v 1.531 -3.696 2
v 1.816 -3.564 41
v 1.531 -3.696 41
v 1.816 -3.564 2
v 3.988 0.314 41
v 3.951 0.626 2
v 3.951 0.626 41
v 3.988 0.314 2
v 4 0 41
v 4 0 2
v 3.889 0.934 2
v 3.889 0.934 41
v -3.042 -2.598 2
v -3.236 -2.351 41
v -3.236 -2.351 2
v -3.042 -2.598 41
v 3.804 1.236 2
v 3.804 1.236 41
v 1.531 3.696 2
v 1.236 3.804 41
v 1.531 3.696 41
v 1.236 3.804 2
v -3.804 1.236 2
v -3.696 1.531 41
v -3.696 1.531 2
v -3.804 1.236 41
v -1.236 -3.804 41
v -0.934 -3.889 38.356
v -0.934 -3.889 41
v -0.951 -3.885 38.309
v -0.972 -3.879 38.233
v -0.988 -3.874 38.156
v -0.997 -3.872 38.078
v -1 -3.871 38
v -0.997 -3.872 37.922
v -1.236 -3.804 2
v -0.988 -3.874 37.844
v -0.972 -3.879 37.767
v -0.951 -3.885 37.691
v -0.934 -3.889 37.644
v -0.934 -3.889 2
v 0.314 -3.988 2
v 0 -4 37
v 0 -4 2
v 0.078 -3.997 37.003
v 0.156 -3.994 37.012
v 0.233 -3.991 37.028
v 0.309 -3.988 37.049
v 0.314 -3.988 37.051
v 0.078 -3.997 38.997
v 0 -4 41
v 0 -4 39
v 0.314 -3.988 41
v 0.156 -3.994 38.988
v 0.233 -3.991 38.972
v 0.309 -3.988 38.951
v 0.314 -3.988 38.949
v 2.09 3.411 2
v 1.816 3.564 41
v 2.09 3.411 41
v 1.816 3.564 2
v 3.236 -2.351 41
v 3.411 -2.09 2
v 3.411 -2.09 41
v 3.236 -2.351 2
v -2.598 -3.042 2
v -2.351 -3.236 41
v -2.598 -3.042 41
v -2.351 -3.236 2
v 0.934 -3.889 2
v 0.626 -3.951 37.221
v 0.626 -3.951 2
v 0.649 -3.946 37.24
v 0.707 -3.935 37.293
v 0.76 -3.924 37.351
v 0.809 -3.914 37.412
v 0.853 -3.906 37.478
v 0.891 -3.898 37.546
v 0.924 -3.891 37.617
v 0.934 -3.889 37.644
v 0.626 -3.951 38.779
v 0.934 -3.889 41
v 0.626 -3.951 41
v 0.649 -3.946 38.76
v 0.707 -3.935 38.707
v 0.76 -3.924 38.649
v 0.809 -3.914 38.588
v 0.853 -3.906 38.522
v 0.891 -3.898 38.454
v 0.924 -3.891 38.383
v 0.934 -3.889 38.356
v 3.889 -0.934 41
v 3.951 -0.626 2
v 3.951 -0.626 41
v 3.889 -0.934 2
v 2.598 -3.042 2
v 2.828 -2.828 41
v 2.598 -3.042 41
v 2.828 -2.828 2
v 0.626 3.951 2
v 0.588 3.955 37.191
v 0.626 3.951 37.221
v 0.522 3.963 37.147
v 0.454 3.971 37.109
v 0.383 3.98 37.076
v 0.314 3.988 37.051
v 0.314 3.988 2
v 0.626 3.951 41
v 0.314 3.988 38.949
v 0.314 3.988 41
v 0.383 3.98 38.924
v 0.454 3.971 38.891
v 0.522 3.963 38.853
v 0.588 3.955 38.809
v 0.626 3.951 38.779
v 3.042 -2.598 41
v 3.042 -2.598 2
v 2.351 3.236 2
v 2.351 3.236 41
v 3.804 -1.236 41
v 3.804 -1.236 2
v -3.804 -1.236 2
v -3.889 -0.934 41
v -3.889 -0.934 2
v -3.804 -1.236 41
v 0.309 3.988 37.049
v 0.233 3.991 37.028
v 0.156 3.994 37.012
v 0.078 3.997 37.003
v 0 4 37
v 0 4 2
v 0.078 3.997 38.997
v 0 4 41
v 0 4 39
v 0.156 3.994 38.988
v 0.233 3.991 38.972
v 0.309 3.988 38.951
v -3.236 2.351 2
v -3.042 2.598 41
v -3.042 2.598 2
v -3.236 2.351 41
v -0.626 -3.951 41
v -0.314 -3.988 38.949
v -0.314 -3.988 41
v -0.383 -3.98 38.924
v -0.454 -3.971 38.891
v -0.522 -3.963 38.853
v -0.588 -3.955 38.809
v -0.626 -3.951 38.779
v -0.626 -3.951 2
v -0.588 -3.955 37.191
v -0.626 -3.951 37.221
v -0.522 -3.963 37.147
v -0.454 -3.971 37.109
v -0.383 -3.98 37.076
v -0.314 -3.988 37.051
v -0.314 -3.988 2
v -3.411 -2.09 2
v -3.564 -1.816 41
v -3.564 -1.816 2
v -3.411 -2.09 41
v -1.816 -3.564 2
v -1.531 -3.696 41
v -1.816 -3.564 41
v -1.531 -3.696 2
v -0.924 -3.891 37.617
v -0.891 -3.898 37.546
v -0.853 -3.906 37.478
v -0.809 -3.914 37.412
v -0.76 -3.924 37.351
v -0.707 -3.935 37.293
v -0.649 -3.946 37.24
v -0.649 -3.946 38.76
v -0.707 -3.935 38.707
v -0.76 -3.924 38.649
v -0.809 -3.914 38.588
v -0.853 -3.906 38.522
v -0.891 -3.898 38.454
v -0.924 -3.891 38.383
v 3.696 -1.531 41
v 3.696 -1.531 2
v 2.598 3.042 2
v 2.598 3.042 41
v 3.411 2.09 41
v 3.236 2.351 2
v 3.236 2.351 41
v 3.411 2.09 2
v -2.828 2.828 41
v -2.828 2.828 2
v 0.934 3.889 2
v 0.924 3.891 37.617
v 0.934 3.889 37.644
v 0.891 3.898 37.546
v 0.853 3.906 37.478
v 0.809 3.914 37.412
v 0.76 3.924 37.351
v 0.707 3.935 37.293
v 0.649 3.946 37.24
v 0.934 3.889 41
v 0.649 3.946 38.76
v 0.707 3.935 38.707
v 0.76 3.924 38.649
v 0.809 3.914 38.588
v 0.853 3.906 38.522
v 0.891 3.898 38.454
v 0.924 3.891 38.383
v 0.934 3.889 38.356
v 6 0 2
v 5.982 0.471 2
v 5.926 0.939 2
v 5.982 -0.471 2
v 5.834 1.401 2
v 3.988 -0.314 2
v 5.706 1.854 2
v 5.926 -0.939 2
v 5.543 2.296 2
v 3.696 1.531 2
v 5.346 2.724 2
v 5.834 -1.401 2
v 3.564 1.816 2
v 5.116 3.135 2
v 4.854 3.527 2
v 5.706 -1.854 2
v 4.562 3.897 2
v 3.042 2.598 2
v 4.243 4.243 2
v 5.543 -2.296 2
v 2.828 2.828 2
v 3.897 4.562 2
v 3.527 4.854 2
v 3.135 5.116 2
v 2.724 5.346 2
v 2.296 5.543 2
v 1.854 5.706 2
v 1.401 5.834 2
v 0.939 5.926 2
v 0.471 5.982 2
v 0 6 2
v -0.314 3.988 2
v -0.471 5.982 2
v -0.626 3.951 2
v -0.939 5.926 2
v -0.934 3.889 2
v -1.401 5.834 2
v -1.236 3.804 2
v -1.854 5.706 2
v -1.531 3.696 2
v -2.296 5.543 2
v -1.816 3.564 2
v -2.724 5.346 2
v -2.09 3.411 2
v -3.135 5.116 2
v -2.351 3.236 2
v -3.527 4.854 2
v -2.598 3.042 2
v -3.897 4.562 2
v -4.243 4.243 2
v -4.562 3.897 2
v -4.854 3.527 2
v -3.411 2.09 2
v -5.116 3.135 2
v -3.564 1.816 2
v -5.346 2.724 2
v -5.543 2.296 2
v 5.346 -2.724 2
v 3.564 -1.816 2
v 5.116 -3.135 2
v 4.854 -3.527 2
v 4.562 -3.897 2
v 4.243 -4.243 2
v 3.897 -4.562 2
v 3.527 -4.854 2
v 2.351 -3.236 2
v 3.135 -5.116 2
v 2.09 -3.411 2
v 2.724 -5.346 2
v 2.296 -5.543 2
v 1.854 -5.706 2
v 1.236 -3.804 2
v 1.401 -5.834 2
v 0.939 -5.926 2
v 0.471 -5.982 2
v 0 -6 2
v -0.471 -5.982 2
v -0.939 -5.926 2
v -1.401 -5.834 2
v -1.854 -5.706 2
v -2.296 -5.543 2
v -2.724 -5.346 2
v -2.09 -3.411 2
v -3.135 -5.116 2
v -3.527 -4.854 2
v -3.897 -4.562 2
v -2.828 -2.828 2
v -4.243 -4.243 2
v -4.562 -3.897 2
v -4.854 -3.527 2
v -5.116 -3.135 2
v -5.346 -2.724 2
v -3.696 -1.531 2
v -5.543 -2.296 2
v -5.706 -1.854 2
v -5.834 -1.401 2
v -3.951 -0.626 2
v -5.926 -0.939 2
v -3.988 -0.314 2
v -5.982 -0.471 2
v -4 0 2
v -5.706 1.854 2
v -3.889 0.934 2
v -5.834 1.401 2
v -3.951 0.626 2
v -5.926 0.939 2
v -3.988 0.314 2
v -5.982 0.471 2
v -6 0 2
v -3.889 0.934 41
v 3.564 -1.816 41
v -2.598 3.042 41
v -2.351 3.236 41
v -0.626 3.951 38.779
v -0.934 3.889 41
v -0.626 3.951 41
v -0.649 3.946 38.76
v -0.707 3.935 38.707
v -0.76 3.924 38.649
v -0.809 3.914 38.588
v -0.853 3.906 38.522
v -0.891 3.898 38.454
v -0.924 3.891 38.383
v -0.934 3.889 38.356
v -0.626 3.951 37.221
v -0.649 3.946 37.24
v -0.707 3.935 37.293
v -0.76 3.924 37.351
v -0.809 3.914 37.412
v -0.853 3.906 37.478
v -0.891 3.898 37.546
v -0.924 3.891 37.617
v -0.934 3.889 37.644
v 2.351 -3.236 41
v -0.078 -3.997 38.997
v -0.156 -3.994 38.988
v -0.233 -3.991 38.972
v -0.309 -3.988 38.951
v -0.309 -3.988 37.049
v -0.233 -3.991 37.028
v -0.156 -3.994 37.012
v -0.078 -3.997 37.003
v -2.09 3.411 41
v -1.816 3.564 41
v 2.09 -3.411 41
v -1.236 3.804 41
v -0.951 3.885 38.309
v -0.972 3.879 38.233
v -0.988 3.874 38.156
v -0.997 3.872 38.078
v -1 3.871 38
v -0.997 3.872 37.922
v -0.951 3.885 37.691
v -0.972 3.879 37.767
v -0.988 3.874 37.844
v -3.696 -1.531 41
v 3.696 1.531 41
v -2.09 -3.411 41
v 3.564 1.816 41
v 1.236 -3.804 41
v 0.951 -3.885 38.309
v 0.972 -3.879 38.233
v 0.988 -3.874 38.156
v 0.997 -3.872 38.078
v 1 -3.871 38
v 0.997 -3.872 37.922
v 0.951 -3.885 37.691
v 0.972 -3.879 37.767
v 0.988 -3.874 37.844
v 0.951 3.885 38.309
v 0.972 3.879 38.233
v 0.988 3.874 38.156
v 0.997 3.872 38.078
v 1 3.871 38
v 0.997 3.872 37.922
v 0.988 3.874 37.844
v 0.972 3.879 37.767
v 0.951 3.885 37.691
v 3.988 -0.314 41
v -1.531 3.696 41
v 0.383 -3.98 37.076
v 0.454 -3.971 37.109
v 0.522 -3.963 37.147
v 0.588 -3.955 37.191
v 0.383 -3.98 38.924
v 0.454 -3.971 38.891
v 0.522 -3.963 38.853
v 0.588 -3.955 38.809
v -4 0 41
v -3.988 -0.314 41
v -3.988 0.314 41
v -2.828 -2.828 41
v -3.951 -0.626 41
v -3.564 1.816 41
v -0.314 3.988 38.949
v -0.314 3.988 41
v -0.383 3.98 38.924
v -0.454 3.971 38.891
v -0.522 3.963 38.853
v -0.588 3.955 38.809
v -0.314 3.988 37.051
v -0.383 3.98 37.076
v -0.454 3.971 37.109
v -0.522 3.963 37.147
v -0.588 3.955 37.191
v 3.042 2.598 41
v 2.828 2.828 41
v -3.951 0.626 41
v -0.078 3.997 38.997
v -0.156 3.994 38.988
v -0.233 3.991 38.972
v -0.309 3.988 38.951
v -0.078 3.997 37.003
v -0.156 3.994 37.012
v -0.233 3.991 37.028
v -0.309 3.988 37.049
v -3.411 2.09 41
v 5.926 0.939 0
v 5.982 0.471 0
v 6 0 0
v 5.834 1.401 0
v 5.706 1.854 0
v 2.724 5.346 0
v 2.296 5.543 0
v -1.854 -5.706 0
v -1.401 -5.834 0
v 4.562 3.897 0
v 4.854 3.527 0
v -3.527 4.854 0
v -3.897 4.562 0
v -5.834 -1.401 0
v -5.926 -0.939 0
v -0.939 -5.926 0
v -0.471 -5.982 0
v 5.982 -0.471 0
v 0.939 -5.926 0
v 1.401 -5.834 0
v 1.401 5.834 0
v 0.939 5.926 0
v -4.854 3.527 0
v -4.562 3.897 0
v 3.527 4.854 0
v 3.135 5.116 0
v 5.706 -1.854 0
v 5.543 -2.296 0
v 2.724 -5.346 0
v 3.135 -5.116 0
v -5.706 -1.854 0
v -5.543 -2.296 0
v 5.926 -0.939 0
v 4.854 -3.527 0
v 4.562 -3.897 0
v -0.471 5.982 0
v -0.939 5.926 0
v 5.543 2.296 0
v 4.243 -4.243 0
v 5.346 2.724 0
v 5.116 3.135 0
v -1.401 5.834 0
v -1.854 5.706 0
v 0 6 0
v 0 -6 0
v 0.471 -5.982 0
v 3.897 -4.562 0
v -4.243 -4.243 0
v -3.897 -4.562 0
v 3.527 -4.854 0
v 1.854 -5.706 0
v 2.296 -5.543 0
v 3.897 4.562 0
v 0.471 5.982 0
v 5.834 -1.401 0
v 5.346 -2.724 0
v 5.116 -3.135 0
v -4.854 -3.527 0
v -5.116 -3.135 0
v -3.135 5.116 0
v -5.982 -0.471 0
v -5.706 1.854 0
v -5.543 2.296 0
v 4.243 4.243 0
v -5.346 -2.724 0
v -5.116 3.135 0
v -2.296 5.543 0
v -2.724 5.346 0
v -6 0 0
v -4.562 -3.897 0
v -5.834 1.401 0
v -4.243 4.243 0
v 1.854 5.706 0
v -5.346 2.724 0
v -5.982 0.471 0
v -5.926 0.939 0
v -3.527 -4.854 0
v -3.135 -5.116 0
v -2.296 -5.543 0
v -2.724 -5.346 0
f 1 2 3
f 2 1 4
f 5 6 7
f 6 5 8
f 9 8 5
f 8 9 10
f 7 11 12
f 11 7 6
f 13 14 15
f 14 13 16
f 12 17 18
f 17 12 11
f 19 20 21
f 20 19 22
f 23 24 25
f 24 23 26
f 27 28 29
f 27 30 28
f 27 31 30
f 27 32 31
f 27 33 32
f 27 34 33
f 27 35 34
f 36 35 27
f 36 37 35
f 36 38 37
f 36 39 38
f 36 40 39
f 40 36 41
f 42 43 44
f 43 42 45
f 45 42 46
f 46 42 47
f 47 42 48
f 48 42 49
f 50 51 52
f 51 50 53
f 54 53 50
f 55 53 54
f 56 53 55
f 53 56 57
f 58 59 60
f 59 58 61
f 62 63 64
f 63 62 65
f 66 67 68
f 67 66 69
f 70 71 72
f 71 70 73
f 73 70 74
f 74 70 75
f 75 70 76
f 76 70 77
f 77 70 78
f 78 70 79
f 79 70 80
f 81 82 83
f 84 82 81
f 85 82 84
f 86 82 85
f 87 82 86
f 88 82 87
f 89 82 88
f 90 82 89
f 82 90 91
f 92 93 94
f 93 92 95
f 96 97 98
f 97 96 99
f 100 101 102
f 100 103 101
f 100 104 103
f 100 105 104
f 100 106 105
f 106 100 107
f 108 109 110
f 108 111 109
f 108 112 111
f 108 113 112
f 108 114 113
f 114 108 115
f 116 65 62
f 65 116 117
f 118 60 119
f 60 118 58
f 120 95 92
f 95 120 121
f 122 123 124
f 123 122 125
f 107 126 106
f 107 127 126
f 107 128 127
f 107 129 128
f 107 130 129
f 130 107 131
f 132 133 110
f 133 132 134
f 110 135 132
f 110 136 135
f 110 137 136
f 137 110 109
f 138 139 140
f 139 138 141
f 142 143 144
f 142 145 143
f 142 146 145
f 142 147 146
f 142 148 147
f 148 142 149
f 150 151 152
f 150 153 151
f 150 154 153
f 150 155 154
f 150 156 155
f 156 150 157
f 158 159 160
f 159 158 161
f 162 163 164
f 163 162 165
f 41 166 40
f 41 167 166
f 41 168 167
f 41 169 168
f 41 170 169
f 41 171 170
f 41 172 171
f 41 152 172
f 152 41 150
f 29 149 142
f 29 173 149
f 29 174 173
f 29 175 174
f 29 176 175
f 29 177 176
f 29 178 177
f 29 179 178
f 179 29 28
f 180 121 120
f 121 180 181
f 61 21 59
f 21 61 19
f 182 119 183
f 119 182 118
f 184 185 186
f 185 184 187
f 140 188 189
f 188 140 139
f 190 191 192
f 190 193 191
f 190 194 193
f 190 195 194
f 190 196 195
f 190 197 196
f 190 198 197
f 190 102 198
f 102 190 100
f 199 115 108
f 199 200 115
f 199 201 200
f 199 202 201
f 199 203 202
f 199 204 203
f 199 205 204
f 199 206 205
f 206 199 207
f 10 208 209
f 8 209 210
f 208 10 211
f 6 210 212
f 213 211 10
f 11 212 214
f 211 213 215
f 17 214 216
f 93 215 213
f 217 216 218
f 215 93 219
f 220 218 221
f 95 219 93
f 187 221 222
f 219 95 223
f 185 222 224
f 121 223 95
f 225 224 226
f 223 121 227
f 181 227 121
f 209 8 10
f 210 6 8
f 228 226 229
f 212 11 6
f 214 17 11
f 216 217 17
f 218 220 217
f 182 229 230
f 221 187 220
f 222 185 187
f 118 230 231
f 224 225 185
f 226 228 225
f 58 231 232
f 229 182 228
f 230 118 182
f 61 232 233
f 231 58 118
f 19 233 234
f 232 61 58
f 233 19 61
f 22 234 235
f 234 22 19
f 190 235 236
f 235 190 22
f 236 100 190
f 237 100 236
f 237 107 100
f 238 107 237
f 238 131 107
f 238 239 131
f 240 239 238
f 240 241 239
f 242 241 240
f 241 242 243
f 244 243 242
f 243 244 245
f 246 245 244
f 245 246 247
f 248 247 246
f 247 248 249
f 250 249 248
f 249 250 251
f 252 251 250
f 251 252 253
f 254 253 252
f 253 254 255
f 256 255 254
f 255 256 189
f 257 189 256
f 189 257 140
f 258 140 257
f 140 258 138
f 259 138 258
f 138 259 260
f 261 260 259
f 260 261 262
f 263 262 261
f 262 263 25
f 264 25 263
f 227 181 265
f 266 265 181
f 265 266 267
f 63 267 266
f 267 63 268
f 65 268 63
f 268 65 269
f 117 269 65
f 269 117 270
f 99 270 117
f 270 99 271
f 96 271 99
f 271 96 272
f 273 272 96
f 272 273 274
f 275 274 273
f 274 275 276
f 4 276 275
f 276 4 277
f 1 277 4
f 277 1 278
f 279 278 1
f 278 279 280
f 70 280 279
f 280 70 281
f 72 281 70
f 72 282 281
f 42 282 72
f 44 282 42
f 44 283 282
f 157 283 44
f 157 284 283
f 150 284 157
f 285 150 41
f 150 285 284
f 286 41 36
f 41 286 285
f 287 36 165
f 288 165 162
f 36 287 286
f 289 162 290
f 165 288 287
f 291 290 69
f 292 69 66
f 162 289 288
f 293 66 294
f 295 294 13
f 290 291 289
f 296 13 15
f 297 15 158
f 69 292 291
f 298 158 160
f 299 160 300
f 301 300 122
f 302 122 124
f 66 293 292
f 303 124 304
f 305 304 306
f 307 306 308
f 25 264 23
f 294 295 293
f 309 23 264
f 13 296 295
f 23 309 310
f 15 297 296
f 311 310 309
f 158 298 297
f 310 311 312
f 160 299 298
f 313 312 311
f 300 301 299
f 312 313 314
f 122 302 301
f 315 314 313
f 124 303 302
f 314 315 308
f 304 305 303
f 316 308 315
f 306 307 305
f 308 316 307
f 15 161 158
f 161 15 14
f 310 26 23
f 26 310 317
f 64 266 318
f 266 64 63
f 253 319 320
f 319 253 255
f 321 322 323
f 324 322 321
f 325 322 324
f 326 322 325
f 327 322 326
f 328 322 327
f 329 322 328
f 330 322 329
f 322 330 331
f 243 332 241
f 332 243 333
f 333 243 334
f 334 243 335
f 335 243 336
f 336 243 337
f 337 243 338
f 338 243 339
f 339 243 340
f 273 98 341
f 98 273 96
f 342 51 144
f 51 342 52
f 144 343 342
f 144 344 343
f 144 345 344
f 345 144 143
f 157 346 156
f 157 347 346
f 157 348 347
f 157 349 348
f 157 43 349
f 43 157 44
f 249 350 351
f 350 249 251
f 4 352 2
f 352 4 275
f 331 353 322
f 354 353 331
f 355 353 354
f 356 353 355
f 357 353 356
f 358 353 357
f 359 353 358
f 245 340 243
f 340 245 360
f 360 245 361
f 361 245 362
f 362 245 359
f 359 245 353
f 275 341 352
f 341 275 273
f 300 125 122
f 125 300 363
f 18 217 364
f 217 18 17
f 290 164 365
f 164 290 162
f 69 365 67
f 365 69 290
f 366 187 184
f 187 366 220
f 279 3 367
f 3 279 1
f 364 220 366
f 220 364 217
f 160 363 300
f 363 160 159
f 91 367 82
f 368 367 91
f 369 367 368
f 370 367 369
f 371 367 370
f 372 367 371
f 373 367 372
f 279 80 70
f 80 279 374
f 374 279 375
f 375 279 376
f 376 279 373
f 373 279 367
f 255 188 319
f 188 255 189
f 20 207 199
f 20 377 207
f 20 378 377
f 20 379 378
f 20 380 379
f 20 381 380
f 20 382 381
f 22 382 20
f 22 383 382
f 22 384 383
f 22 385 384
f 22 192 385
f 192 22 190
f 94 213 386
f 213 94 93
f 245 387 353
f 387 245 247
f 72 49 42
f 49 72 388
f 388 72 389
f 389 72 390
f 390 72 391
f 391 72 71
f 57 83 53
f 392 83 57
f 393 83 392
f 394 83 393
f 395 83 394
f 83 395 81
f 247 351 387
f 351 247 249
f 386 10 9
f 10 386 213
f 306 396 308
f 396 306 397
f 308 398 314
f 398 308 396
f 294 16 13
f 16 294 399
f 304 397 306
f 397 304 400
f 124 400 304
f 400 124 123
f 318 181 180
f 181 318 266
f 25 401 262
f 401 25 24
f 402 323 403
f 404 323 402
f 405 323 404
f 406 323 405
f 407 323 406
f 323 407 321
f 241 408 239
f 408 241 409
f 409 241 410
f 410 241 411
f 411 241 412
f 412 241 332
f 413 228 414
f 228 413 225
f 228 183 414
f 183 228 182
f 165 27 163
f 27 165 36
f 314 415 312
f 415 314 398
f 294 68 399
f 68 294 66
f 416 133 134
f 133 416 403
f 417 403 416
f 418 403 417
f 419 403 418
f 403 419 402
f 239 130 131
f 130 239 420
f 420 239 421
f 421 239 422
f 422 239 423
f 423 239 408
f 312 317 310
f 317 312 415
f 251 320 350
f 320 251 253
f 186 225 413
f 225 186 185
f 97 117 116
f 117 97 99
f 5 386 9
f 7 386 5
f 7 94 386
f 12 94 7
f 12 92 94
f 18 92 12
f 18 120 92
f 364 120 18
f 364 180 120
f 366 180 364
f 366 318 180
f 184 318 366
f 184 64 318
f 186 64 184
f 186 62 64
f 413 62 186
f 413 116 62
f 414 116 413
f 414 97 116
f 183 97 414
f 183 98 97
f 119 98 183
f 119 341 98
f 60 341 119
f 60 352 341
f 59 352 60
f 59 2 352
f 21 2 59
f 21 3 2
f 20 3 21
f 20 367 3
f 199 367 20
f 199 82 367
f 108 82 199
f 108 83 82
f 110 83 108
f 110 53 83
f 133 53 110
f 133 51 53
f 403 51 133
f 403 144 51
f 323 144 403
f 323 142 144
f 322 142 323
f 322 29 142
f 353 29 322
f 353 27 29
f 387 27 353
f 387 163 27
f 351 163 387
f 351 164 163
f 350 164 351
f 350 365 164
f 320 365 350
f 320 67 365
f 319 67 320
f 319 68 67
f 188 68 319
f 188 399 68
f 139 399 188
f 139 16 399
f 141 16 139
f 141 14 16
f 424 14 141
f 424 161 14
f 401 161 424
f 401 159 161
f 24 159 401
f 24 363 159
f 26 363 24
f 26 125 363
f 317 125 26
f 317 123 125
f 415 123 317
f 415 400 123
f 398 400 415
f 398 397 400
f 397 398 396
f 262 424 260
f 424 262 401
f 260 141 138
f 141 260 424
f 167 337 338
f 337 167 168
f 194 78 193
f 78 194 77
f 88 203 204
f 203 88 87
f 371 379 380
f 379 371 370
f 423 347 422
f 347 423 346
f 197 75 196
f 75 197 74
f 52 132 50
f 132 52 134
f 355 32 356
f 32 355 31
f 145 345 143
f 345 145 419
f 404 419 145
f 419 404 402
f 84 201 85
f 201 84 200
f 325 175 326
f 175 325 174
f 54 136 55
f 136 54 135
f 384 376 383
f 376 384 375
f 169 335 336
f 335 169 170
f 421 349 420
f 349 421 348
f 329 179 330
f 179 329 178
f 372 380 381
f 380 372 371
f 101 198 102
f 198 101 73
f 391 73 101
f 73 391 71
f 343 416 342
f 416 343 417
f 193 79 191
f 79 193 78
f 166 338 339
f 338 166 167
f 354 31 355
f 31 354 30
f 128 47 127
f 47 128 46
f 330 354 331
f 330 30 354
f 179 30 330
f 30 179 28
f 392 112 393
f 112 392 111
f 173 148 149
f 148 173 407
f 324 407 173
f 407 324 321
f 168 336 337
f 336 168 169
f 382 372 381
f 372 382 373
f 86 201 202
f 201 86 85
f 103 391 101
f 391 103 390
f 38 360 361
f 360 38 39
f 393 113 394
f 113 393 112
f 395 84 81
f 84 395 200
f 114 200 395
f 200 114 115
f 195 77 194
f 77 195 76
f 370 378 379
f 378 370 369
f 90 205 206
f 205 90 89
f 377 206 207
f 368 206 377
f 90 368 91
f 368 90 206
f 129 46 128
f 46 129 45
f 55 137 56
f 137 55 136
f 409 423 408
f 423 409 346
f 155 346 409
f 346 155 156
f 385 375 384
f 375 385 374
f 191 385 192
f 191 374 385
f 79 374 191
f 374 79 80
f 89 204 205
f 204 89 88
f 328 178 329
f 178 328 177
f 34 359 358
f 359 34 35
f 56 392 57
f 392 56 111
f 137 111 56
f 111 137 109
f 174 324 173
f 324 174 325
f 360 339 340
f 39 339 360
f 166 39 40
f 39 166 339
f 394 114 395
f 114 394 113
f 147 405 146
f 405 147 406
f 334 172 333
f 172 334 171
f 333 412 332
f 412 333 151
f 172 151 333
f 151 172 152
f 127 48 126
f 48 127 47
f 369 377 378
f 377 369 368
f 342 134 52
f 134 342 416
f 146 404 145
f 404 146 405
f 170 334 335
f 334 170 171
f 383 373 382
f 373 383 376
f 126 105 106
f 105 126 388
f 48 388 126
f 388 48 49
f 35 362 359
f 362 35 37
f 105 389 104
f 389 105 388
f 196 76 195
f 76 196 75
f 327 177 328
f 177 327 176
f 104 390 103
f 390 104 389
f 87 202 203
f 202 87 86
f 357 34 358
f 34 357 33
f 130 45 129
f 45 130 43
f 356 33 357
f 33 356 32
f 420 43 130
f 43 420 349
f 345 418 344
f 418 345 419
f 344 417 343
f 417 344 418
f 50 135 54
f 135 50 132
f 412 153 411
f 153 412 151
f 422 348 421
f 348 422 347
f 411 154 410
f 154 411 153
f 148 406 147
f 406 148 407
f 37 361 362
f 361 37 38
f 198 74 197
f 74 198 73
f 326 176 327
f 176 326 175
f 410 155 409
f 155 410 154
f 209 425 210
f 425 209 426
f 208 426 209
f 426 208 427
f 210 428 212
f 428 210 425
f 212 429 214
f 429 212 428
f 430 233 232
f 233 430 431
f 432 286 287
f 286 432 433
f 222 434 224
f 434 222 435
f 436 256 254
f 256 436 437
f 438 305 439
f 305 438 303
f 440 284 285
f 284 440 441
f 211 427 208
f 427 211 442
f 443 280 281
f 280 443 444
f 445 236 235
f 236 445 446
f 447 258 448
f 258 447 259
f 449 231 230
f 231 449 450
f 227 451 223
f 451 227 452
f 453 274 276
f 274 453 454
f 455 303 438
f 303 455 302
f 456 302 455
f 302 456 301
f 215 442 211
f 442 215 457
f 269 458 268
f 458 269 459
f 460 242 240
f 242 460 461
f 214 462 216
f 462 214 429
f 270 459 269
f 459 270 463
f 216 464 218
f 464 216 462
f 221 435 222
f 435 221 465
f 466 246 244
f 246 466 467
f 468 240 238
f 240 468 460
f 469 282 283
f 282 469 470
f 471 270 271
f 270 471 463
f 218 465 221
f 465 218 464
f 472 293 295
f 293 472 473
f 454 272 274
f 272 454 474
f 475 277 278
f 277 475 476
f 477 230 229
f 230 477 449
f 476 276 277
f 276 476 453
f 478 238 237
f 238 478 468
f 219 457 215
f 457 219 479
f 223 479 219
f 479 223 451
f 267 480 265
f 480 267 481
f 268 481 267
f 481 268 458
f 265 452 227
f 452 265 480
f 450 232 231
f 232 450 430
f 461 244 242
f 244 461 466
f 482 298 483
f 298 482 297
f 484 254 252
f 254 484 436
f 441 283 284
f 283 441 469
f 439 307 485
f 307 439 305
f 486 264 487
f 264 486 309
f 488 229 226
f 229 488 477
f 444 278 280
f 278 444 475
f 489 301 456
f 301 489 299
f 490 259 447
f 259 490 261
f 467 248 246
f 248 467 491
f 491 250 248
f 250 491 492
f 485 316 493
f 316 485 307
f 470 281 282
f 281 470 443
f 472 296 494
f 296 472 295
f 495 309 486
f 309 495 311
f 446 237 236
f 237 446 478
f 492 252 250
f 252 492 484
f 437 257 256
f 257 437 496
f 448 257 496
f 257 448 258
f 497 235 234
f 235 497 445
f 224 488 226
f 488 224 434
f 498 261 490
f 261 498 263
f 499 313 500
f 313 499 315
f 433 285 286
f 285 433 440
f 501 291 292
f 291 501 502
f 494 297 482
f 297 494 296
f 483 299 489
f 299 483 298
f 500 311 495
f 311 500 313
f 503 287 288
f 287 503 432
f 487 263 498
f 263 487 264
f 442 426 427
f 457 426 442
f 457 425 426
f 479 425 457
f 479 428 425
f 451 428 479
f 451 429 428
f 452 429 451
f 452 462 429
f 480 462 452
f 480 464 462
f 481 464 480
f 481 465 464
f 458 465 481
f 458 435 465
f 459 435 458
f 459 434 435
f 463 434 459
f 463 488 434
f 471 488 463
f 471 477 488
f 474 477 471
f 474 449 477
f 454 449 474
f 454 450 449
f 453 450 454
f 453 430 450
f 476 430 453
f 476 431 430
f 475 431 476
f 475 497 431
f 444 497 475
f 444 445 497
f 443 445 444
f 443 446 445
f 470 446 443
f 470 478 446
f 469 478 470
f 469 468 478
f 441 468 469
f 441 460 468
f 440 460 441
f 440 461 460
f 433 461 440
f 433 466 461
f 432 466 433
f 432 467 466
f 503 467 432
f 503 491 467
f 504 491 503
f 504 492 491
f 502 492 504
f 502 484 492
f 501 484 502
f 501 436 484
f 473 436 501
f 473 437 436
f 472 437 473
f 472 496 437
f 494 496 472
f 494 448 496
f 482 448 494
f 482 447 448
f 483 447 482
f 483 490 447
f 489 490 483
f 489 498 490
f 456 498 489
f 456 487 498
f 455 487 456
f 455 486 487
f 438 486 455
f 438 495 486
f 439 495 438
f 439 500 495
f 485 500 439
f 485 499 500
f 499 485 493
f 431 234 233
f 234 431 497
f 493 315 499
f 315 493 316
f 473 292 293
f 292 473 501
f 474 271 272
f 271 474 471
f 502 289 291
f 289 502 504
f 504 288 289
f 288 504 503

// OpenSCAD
include <BOSL/constants.scad>
use <BOSL/metric_screws.scad>
use <BOSL/transforms.scad>
use <SpoolHolderBraceRemix.scad>
include <OpenSCAD-common-libraries/screw_matrics.scad>

stem_length=36; // This exclude base lenght, and the end lock part.
stem_diameter=8;

lock_stem_length=3; // This is constant.
lock_pin_diameter=2;

base_length=2;
base_diameter=stem_diameter+4;

module pin() {
    union() {
        cylinder(d=base_diameter, h=base_length, $fn=80);
        
        up(base_length)
            difference() {
                cylinder(d=stem_diameter, h=stem_length + lock_stem_length, $fn=80);
                up(stem_length)
                    back(stem_diameter/2)
                        xrot(90)
                            cylinder(d=lock_pin_diameter, h=stem_diameter, $fn=80);
            }
    }    
}


pin();
